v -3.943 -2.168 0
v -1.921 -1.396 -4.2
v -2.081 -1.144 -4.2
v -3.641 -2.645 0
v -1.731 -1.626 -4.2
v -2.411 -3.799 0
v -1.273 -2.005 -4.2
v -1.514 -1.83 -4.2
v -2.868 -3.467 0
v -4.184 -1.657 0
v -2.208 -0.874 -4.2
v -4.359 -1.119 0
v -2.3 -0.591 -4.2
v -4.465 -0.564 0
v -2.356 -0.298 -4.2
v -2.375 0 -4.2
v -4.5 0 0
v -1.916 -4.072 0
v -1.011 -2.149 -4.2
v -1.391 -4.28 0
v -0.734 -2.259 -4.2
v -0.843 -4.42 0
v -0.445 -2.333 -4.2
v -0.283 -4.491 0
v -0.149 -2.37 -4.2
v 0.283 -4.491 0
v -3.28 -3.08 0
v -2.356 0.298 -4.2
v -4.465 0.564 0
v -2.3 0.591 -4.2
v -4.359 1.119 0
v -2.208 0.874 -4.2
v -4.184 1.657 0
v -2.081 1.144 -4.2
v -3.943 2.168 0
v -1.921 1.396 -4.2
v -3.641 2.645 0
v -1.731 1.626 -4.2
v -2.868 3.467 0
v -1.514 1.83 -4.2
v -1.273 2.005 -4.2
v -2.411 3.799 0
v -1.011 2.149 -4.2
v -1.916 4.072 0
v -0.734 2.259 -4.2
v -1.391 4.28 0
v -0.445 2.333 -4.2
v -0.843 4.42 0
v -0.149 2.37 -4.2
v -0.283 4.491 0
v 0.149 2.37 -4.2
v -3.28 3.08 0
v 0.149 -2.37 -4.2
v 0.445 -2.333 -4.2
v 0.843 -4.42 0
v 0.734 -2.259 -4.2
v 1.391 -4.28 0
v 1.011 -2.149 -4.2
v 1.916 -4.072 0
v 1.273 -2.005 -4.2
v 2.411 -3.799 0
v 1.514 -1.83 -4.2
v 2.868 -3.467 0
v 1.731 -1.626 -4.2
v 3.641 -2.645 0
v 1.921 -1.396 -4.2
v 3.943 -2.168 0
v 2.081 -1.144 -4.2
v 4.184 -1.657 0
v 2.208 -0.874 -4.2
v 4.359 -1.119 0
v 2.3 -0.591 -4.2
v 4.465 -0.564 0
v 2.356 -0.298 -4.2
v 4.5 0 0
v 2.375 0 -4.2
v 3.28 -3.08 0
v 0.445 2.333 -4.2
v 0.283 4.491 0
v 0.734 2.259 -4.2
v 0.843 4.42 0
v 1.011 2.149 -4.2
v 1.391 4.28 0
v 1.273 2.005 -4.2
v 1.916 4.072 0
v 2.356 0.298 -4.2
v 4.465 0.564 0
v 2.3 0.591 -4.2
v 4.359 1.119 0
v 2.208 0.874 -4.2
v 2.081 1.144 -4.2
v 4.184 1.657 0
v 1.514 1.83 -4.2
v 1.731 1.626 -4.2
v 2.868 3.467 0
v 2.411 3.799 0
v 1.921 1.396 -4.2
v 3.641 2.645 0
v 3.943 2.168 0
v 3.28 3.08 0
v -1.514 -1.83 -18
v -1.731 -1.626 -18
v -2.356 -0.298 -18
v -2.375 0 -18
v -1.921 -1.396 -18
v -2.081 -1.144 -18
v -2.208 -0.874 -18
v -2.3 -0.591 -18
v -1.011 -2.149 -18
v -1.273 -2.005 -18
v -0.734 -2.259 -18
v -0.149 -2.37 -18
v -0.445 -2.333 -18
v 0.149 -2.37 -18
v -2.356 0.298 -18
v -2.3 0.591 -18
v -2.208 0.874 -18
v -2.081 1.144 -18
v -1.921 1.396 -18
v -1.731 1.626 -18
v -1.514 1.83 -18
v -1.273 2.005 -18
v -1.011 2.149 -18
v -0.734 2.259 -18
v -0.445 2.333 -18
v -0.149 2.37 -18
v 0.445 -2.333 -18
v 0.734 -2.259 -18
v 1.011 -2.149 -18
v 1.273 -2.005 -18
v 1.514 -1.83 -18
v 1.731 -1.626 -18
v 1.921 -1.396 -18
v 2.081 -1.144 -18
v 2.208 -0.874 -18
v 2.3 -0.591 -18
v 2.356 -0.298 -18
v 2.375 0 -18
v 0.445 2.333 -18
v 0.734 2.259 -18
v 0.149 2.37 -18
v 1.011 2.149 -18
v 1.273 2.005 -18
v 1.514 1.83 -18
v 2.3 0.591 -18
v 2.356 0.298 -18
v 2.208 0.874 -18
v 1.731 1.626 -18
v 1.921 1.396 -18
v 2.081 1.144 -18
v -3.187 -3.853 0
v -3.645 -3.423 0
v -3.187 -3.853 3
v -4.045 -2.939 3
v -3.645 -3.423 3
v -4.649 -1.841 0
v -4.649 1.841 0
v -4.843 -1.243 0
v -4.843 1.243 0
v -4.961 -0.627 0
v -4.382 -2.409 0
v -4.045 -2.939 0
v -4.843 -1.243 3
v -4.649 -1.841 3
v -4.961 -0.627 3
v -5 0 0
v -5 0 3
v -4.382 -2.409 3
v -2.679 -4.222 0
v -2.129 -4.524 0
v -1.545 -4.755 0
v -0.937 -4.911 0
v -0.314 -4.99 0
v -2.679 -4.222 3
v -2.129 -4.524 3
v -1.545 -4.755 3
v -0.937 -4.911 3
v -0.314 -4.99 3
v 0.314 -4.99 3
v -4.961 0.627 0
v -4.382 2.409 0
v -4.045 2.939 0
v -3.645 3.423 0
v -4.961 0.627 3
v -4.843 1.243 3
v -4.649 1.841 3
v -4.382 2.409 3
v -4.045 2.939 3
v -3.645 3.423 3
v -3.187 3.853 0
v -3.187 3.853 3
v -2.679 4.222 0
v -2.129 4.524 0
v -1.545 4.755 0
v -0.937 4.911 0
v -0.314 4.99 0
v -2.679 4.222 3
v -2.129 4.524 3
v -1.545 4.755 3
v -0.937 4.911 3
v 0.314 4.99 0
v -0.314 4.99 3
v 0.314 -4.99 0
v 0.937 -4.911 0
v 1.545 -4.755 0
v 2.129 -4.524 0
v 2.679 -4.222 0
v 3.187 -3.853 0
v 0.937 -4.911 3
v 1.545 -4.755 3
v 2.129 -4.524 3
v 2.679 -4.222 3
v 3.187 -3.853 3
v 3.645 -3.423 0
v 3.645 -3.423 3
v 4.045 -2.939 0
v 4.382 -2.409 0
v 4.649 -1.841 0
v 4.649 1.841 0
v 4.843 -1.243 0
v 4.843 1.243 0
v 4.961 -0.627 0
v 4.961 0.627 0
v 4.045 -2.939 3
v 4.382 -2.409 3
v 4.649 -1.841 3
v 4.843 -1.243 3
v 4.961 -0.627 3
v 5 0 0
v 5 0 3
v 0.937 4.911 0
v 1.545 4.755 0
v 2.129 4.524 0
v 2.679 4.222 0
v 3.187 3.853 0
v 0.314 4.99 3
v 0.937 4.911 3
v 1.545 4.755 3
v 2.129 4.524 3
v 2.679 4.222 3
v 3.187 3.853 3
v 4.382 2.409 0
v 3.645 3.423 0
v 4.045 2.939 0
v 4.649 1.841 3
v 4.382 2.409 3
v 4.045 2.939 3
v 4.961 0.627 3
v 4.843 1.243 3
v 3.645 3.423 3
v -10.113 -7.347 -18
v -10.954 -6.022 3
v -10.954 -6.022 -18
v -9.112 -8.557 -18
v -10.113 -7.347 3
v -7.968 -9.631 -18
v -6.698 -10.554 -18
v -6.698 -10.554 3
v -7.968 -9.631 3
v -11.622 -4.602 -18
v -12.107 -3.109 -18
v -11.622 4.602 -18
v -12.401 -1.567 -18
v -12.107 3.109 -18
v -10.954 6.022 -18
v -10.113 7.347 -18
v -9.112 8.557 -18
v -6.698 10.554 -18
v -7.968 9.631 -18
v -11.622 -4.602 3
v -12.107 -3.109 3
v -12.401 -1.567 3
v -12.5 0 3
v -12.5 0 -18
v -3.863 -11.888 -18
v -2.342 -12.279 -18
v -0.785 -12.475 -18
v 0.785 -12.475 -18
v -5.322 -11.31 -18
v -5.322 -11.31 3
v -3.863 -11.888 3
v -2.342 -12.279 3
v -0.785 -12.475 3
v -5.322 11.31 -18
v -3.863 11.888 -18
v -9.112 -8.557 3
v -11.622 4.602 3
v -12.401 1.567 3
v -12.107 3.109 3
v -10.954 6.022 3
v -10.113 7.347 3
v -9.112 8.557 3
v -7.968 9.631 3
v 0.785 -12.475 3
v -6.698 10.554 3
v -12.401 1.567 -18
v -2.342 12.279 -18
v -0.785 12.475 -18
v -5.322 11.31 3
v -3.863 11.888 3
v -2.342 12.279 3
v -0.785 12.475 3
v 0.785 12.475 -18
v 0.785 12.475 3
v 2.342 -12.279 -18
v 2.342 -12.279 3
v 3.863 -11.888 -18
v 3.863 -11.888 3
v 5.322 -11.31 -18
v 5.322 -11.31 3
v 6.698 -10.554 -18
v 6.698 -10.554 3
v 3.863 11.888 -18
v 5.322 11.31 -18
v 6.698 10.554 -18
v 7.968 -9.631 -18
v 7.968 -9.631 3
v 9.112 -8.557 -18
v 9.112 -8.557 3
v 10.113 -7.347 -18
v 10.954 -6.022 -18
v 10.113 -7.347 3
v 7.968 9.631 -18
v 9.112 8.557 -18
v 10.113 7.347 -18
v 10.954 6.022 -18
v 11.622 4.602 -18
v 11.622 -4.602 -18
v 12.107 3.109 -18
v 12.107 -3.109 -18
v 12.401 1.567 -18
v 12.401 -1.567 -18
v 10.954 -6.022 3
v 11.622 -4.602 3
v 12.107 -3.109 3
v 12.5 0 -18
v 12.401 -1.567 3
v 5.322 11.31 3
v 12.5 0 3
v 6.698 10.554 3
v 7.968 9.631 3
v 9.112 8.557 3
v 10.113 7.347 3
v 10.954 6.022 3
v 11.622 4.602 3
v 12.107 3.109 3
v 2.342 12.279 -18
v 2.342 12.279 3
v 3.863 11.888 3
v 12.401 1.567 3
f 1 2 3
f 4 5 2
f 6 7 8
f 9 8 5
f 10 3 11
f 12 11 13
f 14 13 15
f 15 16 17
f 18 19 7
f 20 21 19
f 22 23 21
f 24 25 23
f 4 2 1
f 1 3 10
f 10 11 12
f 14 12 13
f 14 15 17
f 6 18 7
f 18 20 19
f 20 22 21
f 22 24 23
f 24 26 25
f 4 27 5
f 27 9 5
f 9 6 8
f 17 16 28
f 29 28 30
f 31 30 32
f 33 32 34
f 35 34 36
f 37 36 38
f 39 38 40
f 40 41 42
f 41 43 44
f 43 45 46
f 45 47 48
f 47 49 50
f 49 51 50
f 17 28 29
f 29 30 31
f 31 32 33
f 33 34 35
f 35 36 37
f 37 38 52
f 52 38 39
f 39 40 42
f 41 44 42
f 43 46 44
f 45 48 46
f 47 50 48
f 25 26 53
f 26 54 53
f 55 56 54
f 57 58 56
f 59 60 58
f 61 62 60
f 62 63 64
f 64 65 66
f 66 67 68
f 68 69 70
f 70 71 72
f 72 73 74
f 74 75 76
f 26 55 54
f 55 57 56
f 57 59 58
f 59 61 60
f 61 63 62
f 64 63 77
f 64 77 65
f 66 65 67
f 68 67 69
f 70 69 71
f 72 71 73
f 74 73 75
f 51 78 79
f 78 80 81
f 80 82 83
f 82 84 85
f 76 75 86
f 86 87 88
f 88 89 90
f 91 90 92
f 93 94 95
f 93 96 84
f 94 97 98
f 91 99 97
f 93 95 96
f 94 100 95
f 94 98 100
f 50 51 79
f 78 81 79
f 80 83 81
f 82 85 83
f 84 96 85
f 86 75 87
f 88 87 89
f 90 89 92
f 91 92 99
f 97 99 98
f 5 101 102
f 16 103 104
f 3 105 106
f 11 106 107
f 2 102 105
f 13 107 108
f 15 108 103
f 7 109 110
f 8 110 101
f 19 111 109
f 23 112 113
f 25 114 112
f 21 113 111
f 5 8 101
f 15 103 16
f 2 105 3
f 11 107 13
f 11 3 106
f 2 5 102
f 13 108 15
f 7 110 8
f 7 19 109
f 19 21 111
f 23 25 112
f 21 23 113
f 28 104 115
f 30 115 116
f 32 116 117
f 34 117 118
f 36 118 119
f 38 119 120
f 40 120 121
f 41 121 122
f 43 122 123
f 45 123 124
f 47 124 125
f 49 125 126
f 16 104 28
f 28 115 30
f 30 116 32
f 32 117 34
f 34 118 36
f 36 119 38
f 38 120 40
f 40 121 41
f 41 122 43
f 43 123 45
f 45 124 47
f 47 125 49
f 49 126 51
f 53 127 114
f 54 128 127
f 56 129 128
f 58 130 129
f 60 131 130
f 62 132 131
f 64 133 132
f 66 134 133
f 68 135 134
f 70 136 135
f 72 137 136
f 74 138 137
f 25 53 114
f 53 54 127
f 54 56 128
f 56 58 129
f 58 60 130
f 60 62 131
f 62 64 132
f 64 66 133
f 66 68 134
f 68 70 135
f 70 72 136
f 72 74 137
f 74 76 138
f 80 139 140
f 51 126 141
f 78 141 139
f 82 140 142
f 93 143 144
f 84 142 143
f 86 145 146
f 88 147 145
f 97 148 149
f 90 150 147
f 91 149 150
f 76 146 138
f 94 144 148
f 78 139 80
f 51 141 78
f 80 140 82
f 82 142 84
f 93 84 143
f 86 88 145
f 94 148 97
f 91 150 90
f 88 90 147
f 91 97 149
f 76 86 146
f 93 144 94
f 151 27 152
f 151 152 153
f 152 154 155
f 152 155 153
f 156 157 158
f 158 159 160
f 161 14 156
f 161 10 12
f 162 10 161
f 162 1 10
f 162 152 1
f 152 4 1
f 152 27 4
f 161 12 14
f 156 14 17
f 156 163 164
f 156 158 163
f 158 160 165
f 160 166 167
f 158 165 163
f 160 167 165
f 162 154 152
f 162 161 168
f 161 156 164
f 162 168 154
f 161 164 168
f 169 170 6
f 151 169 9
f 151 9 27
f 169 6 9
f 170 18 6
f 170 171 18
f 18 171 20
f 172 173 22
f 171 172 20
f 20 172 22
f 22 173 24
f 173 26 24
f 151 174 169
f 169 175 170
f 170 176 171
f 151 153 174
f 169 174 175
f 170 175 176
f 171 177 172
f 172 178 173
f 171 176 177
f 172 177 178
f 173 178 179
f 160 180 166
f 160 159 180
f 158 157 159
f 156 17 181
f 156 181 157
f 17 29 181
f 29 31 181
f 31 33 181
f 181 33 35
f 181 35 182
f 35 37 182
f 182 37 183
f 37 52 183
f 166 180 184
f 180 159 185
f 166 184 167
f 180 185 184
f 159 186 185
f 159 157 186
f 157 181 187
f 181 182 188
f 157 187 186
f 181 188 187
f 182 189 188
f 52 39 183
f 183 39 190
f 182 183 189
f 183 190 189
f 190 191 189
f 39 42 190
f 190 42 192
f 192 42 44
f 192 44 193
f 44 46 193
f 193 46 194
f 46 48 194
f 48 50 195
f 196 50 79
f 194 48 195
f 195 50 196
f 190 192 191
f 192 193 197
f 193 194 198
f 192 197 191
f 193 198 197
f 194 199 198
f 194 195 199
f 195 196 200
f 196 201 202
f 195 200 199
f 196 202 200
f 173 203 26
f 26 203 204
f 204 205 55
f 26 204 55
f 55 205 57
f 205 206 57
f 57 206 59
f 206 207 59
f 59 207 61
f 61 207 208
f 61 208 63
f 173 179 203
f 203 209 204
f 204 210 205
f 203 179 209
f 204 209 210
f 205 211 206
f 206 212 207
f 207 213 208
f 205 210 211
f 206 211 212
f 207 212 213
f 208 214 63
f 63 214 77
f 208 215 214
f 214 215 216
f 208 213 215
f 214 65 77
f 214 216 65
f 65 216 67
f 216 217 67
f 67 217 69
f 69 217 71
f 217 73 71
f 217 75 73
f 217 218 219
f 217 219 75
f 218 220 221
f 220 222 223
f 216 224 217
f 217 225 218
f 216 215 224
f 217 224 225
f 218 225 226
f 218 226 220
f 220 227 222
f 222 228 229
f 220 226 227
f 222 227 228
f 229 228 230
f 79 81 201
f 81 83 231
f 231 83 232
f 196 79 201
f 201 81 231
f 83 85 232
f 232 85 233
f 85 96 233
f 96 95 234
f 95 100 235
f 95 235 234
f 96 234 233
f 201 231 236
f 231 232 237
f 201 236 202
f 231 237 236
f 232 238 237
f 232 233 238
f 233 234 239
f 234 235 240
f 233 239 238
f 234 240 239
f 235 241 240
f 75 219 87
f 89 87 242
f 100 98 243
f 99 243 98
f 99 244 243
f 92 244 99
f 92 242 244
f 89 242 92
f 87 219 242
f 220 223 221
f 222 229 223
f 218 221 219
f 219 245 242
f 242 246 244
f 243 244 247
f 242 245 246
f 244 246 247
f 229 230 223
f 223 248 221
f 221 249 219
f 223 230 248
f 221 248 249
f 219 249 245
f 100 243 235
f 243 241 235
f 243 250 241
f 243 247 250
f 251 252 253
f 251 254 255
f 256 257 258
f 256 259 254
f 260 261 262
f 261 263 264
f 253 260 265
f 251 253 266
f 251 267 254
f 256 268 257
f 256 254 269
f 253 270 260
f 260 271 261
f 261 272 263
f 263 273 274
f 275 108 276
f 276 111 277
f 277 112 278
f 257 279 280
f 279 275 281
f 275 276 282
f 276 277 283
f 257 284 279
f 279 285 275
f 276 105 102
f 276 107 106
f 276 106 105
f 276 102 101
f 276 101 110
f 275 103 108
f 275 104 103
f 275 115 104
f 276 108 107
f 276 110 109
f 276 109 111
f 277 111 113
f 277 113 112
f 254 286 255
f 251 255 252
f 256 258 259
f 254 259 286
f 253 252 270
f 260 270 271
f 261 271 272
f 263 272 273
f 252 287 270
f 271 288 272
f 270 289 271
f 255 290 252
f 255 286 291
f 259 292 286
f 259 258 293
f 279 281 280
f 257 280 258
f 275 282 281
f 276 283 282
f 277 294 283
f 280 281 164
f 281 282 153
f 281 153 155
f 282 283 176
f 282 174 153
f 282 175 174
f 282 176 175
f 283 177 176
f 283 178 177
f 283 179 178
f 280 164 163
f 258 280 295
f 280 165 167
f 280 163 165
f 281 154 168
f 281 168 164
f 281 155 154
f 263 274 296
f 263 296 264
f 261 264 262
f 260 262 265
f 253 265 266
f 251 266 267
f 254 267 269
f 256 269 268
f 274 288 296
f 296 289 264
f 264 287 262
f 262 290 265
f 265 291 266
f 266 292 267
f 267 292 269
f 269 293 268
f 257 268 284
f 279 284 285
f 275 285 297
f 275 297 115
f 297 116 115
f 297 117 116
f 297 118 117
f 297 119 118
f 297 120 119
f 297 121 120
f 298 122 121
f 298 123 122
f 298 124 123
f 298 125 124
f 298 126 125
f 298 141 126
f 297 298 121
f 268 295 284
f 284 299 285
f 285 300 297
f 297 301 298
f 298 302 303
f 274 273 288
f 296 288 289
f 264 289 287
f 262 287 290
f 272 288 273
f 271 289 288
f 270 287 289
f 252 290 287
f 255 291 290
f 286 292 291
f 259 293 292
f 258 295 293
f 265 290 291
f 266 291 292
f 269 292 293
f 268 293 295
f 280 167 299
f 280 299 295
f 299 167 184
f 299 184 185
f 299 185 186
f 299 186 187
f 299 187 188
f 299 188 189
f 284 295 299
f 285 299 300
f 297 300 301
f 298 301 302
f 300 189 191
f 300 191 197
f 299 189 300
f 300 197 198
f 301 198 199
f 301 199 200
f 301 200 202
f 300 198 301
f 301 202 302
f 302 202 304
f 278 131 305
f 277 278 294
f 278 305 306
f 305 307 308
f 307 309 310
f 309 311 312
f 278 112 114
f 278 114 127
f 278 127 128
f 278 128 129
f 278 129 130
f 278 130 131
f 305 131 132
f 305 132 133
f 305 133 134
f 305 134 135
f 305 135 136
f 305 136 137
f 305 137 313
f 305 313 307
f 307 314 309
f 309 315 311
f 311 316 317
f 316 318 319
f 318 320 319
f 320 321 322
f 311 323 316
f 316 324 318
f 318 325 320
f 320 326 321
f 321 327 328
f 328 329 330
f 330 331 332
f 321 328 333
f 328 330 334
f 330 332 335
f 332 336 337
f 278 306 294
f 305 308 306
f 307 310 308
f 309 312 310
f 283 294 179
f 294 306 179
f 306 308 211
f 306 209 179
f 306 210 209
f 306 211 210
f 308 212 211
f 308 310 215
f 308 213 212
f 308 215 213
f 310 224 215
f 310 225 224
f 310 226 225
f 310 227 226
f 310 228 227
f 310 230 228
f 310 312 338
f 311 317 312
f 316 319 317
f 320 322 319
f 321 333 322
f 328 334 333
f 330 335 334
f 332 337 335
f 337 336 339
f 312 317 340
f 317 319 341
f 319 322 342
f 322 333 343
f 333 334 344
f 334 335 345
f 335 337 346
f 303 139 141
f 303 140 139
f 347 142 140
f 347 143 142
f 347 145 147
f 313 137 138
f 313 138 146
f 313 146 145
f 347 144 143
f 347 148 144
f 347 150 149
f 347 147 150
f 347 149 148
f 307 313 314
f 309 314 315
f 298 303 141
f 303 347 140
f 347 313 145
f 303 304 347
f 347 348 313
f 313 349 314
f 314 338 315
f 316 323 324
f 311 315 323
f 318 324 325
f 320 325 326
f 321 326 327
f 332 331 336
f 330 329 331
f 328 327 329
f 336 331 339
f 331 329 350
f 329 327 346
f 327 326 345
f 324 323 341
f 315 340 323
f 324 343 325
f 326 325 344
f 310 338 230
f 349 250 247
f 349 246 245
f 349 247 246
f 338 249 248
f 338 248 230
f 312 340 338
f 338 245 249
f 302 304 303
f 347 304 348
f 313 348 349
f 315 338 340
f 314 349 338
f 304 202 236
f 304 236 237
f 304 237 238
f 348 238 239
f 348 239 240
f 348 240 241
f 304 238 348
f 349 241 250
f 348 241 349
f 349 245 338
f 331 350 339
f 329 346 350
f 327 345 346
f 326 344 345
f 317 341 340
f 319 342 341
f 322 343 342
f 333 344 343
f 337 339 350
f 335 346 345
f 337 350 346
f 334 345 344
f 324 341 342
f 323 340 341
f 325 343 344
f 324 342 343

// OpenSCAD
$fn = 50;

difference() {
	union() {
		translate(v = [0, 0, -18.0]) {
			cylinder(h = 21, r = 12.5);
		}
	}
	union() {
		translate(v = [0, 0, 0]) {
			rotate(a = [0, 0, 0]) {
				difference() {
					union() {
						translate(v = [0, 0, -21.0]) {
							cylinder(h = 21, r = 2.25);
						}
						translate(v = [0, 0, -4.2]) {
							cylinder(h = 4.2, r1 = 2.375, r2 = 4.5);
						}
						translate(v = [0, 0, -21.0]) {
							cylinder(h = 21, r = 2.375);
						}
						translate(v = [0, 0, -21.0]) {
							cylinder(h = 21, r = 2.25);
						}
					}
					union();
				}
			}
		}
		#cylinder(h = 3, r = 5.0);
	}
}
